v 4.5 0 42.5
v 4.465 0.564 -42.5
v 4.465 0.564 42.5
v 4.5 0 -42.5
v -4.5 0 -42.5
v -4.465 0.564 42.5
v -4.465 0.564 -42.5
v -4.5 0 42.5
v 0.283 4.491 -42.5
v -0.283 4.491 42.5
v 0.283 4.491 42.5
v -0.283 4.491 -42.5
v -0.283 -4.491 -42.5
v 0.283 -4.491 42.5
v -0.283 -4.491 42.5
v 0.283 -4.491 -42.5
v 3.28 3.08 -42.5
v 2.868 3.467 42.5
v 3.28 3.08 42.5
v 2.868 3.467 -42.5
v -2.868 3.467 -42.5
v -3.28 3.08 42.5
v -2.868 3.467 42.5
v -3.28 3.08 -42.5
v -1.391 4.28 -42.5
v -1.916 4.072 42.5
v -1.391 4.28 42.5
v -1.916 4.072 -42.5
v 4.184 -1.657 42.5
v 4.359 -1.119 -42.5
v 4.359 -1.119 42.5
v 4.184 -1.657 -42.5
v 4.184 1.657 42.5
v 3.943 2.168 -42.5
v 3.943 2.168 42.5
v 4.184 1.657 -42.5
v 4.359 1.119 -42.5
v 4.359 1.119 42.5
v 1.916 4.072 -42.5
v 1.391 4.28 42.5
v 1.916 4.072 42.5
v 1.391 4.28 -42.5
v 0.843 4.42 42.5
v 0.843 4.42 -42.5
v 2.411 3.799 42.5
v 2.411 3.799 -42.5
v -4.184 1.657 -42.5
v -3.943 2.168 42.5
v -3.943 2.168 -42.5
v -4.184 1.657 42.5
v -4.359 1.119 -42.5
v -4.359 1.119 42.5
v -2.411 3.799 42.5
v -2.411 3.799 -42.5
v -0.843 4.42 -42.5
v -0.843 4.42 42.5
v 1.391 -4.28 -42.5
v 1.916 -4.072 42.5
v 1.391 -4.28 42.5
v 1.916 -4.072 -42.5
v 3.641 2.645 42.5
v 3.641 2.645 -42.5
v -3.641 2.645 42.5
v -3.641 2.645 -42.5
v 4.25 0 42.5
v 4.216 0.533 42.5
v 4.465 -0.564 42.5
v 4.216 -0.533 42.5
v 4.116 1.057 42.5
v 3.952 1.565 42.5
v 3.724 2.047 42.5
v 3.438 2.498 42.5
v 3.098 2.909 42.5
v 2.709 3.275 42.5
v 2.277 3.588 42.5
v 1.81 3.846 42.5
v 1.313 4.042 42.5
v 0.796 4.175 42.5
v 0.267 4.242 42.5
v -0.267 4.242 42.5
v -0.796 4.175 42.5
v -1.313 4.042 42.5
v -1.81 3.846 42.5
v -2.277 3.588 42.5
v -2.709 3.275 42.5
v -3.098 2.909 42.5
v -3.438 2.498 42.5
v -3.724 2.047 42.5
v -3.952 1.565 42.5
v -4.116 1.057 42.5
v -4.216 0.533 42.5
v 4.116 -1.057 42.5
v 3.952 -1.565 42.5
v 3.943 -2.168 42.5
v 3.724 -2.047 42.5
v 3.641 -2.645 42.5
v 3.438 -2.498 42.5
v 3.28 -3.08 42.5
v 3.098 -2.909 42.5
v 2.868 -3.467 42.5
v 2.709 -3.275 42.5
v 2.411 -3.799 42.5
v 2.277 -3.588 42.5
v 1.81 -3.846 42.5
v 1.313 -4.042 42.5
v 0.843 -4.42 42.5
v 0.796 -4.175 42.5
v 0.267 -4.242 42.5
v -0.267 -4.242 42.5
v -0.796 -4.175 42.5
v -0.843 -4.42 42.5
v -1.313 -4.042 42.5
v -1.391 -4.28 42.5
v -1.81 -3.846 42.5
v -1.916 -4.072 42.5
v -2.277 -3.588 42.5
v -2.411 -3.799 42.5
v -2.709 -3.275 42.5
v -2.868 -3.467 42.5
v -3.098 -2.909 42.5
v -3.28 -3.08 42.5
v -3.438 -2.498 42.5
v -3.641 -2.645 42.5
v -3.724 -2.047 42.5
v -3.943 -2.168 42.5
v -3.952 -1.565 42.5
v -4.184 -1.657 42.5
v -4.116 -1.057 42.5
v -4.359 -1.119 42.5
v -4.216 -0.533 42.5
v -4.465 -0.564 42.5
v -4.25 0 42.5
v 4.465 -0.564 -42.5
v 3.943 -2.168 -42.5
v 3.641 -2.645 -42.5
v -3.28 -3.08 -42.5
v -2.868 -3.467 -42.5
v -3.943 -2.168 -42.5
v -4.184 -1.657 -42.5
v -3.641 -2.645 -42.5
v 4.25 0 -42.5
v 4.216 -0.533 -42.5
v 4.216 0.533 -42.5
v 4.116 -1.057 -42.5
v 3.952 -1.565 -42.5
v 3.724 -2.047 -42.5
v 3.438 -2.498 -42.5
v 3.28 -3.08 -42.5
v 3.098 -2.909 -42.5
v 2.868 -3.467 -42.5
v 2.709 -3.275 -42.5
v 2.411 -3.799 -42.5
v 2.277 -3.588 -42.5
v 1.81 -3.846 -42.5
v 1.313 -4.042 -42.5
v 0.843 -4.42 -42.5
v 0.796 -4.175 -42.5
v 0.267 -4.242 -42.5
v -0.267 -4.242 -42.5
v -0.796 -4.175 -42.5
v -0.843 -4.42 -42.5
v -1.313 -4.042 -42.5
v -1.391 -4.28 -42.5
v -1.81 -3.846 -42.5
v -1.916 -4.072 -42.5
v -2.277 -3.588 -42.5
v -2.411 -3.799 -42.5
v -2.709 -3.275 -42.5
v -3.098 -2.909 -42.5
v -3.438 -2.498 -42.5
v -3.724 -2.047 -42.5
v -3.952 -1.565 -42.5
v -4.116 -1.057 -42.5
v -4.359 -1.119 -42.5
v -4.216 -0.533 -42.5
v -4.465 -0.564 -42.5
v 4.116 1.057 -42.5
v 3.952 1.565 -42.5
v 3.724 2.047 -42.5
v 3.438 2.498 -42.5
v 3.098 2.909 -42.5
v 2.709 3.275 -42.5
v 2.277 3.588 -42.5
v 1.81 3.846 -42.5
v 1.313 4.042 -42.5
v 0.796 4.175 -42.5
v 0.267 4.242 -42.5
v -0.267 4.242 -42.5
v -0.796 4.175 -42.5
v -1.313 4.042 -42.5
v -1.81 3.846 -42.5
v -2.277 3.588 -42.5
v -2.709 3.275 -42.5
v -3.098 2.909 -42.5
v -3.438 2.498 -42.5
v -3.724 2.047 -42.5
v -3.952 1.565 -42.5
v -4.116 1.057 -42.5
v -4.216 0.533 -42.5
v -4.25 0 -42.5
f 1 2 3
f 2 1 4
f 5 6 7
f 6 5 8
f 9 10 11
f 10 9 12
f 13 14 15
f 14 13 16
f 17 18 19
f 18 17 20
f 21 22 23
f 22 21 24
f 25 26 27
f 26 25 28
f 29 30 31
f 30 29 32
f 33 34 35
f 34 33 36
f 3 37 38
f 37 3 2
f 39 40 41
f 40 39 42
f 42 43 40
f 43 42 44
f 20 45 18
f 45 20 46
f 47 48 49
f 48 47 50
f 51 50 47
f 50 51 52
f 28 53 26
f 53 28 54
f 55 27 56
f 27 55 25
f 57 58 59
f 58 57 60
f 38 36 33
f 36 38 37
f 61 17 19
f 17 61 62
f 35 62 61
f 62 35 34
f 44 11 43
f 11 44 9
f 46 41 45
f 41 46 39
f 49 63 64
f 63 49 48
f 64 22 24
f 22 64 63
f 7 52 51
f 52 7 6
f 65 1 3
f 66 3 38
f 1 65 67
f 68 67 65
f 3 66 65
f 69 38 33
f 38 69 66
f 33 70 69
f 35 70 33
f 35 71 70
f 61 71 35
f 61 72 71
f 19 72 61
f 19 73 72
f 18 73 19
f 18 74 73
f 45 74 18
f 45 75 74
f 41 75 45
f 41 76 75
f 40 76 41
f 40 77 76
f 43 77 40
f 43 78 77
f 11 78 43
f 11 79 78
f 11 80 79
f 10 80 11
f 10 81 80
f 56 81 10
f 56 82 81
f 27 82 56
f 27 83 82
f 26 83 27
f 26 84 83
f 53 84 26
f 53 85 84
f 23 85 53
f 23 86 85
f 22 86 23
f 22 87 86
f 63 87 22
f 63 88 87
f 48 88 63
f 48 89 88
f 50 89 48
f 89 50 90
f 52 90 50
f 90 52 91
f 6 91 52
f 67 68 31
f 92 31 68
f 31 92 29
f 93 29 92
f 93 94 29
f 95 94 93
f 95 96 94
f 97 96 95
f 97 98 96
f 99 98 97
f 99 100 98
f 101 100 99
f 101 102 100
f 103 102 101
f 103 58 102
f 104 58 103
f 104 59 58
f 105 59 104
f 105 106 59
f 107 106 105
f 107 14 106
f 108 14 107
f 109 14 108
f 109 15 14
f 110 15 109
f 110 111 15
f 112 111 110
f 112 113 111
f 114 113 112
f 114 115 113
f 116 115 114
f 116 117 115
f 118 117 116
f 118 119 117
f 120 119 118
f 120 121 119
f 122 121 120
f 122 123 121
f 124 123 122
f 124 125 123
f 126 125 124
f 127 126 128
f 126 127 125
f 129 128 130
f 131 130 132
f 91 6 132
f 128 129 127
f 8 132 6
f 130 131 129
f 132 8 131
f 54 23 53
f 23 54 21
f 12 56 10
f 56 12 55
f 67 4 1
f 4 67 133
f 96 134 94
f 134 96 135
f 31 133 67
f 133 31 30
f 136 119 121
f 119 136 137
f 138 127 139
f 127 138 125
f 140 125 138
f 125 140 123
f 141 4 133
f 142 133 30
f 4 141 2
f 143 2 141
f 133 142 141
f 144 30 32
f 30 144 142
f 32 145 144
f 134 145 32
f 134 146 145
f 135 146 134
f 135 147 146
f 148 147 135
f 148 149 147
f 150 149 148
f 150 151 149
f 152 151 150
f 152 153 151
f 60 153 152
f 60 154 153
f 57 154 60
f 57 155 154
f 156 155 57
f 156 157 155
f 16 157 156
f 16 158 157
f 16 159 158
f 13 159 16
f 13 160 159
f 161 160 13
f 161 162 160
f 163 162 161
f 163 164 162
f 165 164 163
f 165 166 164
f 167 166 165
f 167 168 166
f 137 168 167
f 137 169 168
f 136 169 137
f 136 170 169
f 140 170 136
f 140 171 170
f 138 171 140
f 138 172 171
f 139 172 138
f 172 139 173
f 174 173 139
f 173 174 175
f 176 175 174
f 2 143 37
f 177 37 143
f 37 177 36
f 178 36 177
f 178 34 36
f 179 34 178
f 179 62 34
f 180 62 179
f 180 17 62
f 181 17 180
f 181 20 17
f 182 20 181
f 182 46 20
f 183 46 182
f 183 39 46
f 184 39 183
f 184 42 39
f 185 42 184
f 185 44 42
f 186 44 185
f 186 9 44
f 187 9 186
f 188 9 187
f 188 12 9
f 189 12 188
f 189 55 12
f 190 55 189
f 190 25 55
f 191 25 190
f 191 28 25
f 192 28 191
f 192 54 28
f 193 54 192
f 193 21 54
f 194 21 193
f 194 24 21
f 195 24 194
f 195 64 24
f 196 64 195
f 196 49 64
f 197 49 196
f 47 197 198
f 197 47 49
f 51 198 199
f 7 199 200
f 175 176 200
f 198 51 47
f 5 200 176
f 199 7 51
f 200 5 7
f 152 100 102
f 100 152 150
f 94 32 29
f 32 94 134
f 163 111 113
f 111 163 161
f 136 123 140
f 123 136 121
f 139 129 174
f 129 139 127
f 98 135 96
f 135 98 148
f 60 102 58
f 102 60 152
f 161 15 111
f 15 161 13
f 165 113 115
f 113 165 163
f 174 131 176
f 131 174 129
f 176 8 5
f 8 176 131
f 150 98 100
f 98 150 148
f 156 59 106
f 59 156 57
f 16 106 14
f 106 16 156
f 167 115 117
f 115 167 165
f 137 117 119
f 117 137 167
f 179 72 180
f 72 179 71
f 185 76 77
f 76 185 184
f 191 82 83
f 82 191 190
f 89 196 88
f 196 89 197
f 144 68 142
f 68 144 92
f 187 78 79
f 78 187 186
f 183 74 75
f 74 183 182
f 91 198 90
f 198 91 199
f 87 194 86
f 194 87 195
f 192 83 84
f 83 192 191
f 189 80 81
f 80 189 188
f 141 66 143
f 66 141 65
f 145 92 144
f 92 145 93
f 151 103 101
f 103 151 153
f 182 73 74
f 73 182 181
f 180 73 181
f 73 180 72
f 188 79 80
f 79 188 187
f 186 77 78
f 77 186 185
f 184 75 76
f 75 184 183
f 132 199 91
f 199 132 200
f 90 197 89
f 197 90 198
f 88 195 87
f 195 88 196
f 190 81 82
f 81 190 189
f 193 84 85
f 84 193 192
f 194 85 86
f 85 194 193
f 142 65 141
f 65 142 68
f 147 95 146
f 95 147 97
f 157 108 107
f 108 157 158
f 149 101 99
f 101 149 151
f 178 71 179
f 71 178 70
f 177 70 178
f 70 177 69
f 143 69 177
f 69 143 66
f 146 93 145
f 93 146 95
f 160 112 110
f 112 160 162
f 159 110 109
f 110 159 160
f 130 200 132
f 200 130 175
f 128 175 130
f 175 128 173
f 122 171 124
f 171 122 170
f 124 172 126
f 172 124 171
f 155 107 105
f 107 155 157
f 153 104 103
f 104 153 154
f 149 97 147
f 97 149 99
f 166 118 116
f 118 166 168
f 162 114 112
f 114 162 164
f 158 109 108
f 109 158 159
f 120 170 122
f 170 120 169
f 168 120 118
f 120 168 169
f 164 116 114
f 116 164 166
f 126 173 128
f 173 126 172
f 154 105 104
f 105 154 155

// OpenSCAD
$fn = 50;


difference() {
	union() {
		translate(v = [0, 0, -42.5000000000]) {
			cylinder(h = 85, r = 4.5000000000);
		}
	}
	union() {
		translate(v = [0, 0, -100.0000000000]) {
			cylinder(h = 200, r = 4.2500000000);
		}
	}
}
